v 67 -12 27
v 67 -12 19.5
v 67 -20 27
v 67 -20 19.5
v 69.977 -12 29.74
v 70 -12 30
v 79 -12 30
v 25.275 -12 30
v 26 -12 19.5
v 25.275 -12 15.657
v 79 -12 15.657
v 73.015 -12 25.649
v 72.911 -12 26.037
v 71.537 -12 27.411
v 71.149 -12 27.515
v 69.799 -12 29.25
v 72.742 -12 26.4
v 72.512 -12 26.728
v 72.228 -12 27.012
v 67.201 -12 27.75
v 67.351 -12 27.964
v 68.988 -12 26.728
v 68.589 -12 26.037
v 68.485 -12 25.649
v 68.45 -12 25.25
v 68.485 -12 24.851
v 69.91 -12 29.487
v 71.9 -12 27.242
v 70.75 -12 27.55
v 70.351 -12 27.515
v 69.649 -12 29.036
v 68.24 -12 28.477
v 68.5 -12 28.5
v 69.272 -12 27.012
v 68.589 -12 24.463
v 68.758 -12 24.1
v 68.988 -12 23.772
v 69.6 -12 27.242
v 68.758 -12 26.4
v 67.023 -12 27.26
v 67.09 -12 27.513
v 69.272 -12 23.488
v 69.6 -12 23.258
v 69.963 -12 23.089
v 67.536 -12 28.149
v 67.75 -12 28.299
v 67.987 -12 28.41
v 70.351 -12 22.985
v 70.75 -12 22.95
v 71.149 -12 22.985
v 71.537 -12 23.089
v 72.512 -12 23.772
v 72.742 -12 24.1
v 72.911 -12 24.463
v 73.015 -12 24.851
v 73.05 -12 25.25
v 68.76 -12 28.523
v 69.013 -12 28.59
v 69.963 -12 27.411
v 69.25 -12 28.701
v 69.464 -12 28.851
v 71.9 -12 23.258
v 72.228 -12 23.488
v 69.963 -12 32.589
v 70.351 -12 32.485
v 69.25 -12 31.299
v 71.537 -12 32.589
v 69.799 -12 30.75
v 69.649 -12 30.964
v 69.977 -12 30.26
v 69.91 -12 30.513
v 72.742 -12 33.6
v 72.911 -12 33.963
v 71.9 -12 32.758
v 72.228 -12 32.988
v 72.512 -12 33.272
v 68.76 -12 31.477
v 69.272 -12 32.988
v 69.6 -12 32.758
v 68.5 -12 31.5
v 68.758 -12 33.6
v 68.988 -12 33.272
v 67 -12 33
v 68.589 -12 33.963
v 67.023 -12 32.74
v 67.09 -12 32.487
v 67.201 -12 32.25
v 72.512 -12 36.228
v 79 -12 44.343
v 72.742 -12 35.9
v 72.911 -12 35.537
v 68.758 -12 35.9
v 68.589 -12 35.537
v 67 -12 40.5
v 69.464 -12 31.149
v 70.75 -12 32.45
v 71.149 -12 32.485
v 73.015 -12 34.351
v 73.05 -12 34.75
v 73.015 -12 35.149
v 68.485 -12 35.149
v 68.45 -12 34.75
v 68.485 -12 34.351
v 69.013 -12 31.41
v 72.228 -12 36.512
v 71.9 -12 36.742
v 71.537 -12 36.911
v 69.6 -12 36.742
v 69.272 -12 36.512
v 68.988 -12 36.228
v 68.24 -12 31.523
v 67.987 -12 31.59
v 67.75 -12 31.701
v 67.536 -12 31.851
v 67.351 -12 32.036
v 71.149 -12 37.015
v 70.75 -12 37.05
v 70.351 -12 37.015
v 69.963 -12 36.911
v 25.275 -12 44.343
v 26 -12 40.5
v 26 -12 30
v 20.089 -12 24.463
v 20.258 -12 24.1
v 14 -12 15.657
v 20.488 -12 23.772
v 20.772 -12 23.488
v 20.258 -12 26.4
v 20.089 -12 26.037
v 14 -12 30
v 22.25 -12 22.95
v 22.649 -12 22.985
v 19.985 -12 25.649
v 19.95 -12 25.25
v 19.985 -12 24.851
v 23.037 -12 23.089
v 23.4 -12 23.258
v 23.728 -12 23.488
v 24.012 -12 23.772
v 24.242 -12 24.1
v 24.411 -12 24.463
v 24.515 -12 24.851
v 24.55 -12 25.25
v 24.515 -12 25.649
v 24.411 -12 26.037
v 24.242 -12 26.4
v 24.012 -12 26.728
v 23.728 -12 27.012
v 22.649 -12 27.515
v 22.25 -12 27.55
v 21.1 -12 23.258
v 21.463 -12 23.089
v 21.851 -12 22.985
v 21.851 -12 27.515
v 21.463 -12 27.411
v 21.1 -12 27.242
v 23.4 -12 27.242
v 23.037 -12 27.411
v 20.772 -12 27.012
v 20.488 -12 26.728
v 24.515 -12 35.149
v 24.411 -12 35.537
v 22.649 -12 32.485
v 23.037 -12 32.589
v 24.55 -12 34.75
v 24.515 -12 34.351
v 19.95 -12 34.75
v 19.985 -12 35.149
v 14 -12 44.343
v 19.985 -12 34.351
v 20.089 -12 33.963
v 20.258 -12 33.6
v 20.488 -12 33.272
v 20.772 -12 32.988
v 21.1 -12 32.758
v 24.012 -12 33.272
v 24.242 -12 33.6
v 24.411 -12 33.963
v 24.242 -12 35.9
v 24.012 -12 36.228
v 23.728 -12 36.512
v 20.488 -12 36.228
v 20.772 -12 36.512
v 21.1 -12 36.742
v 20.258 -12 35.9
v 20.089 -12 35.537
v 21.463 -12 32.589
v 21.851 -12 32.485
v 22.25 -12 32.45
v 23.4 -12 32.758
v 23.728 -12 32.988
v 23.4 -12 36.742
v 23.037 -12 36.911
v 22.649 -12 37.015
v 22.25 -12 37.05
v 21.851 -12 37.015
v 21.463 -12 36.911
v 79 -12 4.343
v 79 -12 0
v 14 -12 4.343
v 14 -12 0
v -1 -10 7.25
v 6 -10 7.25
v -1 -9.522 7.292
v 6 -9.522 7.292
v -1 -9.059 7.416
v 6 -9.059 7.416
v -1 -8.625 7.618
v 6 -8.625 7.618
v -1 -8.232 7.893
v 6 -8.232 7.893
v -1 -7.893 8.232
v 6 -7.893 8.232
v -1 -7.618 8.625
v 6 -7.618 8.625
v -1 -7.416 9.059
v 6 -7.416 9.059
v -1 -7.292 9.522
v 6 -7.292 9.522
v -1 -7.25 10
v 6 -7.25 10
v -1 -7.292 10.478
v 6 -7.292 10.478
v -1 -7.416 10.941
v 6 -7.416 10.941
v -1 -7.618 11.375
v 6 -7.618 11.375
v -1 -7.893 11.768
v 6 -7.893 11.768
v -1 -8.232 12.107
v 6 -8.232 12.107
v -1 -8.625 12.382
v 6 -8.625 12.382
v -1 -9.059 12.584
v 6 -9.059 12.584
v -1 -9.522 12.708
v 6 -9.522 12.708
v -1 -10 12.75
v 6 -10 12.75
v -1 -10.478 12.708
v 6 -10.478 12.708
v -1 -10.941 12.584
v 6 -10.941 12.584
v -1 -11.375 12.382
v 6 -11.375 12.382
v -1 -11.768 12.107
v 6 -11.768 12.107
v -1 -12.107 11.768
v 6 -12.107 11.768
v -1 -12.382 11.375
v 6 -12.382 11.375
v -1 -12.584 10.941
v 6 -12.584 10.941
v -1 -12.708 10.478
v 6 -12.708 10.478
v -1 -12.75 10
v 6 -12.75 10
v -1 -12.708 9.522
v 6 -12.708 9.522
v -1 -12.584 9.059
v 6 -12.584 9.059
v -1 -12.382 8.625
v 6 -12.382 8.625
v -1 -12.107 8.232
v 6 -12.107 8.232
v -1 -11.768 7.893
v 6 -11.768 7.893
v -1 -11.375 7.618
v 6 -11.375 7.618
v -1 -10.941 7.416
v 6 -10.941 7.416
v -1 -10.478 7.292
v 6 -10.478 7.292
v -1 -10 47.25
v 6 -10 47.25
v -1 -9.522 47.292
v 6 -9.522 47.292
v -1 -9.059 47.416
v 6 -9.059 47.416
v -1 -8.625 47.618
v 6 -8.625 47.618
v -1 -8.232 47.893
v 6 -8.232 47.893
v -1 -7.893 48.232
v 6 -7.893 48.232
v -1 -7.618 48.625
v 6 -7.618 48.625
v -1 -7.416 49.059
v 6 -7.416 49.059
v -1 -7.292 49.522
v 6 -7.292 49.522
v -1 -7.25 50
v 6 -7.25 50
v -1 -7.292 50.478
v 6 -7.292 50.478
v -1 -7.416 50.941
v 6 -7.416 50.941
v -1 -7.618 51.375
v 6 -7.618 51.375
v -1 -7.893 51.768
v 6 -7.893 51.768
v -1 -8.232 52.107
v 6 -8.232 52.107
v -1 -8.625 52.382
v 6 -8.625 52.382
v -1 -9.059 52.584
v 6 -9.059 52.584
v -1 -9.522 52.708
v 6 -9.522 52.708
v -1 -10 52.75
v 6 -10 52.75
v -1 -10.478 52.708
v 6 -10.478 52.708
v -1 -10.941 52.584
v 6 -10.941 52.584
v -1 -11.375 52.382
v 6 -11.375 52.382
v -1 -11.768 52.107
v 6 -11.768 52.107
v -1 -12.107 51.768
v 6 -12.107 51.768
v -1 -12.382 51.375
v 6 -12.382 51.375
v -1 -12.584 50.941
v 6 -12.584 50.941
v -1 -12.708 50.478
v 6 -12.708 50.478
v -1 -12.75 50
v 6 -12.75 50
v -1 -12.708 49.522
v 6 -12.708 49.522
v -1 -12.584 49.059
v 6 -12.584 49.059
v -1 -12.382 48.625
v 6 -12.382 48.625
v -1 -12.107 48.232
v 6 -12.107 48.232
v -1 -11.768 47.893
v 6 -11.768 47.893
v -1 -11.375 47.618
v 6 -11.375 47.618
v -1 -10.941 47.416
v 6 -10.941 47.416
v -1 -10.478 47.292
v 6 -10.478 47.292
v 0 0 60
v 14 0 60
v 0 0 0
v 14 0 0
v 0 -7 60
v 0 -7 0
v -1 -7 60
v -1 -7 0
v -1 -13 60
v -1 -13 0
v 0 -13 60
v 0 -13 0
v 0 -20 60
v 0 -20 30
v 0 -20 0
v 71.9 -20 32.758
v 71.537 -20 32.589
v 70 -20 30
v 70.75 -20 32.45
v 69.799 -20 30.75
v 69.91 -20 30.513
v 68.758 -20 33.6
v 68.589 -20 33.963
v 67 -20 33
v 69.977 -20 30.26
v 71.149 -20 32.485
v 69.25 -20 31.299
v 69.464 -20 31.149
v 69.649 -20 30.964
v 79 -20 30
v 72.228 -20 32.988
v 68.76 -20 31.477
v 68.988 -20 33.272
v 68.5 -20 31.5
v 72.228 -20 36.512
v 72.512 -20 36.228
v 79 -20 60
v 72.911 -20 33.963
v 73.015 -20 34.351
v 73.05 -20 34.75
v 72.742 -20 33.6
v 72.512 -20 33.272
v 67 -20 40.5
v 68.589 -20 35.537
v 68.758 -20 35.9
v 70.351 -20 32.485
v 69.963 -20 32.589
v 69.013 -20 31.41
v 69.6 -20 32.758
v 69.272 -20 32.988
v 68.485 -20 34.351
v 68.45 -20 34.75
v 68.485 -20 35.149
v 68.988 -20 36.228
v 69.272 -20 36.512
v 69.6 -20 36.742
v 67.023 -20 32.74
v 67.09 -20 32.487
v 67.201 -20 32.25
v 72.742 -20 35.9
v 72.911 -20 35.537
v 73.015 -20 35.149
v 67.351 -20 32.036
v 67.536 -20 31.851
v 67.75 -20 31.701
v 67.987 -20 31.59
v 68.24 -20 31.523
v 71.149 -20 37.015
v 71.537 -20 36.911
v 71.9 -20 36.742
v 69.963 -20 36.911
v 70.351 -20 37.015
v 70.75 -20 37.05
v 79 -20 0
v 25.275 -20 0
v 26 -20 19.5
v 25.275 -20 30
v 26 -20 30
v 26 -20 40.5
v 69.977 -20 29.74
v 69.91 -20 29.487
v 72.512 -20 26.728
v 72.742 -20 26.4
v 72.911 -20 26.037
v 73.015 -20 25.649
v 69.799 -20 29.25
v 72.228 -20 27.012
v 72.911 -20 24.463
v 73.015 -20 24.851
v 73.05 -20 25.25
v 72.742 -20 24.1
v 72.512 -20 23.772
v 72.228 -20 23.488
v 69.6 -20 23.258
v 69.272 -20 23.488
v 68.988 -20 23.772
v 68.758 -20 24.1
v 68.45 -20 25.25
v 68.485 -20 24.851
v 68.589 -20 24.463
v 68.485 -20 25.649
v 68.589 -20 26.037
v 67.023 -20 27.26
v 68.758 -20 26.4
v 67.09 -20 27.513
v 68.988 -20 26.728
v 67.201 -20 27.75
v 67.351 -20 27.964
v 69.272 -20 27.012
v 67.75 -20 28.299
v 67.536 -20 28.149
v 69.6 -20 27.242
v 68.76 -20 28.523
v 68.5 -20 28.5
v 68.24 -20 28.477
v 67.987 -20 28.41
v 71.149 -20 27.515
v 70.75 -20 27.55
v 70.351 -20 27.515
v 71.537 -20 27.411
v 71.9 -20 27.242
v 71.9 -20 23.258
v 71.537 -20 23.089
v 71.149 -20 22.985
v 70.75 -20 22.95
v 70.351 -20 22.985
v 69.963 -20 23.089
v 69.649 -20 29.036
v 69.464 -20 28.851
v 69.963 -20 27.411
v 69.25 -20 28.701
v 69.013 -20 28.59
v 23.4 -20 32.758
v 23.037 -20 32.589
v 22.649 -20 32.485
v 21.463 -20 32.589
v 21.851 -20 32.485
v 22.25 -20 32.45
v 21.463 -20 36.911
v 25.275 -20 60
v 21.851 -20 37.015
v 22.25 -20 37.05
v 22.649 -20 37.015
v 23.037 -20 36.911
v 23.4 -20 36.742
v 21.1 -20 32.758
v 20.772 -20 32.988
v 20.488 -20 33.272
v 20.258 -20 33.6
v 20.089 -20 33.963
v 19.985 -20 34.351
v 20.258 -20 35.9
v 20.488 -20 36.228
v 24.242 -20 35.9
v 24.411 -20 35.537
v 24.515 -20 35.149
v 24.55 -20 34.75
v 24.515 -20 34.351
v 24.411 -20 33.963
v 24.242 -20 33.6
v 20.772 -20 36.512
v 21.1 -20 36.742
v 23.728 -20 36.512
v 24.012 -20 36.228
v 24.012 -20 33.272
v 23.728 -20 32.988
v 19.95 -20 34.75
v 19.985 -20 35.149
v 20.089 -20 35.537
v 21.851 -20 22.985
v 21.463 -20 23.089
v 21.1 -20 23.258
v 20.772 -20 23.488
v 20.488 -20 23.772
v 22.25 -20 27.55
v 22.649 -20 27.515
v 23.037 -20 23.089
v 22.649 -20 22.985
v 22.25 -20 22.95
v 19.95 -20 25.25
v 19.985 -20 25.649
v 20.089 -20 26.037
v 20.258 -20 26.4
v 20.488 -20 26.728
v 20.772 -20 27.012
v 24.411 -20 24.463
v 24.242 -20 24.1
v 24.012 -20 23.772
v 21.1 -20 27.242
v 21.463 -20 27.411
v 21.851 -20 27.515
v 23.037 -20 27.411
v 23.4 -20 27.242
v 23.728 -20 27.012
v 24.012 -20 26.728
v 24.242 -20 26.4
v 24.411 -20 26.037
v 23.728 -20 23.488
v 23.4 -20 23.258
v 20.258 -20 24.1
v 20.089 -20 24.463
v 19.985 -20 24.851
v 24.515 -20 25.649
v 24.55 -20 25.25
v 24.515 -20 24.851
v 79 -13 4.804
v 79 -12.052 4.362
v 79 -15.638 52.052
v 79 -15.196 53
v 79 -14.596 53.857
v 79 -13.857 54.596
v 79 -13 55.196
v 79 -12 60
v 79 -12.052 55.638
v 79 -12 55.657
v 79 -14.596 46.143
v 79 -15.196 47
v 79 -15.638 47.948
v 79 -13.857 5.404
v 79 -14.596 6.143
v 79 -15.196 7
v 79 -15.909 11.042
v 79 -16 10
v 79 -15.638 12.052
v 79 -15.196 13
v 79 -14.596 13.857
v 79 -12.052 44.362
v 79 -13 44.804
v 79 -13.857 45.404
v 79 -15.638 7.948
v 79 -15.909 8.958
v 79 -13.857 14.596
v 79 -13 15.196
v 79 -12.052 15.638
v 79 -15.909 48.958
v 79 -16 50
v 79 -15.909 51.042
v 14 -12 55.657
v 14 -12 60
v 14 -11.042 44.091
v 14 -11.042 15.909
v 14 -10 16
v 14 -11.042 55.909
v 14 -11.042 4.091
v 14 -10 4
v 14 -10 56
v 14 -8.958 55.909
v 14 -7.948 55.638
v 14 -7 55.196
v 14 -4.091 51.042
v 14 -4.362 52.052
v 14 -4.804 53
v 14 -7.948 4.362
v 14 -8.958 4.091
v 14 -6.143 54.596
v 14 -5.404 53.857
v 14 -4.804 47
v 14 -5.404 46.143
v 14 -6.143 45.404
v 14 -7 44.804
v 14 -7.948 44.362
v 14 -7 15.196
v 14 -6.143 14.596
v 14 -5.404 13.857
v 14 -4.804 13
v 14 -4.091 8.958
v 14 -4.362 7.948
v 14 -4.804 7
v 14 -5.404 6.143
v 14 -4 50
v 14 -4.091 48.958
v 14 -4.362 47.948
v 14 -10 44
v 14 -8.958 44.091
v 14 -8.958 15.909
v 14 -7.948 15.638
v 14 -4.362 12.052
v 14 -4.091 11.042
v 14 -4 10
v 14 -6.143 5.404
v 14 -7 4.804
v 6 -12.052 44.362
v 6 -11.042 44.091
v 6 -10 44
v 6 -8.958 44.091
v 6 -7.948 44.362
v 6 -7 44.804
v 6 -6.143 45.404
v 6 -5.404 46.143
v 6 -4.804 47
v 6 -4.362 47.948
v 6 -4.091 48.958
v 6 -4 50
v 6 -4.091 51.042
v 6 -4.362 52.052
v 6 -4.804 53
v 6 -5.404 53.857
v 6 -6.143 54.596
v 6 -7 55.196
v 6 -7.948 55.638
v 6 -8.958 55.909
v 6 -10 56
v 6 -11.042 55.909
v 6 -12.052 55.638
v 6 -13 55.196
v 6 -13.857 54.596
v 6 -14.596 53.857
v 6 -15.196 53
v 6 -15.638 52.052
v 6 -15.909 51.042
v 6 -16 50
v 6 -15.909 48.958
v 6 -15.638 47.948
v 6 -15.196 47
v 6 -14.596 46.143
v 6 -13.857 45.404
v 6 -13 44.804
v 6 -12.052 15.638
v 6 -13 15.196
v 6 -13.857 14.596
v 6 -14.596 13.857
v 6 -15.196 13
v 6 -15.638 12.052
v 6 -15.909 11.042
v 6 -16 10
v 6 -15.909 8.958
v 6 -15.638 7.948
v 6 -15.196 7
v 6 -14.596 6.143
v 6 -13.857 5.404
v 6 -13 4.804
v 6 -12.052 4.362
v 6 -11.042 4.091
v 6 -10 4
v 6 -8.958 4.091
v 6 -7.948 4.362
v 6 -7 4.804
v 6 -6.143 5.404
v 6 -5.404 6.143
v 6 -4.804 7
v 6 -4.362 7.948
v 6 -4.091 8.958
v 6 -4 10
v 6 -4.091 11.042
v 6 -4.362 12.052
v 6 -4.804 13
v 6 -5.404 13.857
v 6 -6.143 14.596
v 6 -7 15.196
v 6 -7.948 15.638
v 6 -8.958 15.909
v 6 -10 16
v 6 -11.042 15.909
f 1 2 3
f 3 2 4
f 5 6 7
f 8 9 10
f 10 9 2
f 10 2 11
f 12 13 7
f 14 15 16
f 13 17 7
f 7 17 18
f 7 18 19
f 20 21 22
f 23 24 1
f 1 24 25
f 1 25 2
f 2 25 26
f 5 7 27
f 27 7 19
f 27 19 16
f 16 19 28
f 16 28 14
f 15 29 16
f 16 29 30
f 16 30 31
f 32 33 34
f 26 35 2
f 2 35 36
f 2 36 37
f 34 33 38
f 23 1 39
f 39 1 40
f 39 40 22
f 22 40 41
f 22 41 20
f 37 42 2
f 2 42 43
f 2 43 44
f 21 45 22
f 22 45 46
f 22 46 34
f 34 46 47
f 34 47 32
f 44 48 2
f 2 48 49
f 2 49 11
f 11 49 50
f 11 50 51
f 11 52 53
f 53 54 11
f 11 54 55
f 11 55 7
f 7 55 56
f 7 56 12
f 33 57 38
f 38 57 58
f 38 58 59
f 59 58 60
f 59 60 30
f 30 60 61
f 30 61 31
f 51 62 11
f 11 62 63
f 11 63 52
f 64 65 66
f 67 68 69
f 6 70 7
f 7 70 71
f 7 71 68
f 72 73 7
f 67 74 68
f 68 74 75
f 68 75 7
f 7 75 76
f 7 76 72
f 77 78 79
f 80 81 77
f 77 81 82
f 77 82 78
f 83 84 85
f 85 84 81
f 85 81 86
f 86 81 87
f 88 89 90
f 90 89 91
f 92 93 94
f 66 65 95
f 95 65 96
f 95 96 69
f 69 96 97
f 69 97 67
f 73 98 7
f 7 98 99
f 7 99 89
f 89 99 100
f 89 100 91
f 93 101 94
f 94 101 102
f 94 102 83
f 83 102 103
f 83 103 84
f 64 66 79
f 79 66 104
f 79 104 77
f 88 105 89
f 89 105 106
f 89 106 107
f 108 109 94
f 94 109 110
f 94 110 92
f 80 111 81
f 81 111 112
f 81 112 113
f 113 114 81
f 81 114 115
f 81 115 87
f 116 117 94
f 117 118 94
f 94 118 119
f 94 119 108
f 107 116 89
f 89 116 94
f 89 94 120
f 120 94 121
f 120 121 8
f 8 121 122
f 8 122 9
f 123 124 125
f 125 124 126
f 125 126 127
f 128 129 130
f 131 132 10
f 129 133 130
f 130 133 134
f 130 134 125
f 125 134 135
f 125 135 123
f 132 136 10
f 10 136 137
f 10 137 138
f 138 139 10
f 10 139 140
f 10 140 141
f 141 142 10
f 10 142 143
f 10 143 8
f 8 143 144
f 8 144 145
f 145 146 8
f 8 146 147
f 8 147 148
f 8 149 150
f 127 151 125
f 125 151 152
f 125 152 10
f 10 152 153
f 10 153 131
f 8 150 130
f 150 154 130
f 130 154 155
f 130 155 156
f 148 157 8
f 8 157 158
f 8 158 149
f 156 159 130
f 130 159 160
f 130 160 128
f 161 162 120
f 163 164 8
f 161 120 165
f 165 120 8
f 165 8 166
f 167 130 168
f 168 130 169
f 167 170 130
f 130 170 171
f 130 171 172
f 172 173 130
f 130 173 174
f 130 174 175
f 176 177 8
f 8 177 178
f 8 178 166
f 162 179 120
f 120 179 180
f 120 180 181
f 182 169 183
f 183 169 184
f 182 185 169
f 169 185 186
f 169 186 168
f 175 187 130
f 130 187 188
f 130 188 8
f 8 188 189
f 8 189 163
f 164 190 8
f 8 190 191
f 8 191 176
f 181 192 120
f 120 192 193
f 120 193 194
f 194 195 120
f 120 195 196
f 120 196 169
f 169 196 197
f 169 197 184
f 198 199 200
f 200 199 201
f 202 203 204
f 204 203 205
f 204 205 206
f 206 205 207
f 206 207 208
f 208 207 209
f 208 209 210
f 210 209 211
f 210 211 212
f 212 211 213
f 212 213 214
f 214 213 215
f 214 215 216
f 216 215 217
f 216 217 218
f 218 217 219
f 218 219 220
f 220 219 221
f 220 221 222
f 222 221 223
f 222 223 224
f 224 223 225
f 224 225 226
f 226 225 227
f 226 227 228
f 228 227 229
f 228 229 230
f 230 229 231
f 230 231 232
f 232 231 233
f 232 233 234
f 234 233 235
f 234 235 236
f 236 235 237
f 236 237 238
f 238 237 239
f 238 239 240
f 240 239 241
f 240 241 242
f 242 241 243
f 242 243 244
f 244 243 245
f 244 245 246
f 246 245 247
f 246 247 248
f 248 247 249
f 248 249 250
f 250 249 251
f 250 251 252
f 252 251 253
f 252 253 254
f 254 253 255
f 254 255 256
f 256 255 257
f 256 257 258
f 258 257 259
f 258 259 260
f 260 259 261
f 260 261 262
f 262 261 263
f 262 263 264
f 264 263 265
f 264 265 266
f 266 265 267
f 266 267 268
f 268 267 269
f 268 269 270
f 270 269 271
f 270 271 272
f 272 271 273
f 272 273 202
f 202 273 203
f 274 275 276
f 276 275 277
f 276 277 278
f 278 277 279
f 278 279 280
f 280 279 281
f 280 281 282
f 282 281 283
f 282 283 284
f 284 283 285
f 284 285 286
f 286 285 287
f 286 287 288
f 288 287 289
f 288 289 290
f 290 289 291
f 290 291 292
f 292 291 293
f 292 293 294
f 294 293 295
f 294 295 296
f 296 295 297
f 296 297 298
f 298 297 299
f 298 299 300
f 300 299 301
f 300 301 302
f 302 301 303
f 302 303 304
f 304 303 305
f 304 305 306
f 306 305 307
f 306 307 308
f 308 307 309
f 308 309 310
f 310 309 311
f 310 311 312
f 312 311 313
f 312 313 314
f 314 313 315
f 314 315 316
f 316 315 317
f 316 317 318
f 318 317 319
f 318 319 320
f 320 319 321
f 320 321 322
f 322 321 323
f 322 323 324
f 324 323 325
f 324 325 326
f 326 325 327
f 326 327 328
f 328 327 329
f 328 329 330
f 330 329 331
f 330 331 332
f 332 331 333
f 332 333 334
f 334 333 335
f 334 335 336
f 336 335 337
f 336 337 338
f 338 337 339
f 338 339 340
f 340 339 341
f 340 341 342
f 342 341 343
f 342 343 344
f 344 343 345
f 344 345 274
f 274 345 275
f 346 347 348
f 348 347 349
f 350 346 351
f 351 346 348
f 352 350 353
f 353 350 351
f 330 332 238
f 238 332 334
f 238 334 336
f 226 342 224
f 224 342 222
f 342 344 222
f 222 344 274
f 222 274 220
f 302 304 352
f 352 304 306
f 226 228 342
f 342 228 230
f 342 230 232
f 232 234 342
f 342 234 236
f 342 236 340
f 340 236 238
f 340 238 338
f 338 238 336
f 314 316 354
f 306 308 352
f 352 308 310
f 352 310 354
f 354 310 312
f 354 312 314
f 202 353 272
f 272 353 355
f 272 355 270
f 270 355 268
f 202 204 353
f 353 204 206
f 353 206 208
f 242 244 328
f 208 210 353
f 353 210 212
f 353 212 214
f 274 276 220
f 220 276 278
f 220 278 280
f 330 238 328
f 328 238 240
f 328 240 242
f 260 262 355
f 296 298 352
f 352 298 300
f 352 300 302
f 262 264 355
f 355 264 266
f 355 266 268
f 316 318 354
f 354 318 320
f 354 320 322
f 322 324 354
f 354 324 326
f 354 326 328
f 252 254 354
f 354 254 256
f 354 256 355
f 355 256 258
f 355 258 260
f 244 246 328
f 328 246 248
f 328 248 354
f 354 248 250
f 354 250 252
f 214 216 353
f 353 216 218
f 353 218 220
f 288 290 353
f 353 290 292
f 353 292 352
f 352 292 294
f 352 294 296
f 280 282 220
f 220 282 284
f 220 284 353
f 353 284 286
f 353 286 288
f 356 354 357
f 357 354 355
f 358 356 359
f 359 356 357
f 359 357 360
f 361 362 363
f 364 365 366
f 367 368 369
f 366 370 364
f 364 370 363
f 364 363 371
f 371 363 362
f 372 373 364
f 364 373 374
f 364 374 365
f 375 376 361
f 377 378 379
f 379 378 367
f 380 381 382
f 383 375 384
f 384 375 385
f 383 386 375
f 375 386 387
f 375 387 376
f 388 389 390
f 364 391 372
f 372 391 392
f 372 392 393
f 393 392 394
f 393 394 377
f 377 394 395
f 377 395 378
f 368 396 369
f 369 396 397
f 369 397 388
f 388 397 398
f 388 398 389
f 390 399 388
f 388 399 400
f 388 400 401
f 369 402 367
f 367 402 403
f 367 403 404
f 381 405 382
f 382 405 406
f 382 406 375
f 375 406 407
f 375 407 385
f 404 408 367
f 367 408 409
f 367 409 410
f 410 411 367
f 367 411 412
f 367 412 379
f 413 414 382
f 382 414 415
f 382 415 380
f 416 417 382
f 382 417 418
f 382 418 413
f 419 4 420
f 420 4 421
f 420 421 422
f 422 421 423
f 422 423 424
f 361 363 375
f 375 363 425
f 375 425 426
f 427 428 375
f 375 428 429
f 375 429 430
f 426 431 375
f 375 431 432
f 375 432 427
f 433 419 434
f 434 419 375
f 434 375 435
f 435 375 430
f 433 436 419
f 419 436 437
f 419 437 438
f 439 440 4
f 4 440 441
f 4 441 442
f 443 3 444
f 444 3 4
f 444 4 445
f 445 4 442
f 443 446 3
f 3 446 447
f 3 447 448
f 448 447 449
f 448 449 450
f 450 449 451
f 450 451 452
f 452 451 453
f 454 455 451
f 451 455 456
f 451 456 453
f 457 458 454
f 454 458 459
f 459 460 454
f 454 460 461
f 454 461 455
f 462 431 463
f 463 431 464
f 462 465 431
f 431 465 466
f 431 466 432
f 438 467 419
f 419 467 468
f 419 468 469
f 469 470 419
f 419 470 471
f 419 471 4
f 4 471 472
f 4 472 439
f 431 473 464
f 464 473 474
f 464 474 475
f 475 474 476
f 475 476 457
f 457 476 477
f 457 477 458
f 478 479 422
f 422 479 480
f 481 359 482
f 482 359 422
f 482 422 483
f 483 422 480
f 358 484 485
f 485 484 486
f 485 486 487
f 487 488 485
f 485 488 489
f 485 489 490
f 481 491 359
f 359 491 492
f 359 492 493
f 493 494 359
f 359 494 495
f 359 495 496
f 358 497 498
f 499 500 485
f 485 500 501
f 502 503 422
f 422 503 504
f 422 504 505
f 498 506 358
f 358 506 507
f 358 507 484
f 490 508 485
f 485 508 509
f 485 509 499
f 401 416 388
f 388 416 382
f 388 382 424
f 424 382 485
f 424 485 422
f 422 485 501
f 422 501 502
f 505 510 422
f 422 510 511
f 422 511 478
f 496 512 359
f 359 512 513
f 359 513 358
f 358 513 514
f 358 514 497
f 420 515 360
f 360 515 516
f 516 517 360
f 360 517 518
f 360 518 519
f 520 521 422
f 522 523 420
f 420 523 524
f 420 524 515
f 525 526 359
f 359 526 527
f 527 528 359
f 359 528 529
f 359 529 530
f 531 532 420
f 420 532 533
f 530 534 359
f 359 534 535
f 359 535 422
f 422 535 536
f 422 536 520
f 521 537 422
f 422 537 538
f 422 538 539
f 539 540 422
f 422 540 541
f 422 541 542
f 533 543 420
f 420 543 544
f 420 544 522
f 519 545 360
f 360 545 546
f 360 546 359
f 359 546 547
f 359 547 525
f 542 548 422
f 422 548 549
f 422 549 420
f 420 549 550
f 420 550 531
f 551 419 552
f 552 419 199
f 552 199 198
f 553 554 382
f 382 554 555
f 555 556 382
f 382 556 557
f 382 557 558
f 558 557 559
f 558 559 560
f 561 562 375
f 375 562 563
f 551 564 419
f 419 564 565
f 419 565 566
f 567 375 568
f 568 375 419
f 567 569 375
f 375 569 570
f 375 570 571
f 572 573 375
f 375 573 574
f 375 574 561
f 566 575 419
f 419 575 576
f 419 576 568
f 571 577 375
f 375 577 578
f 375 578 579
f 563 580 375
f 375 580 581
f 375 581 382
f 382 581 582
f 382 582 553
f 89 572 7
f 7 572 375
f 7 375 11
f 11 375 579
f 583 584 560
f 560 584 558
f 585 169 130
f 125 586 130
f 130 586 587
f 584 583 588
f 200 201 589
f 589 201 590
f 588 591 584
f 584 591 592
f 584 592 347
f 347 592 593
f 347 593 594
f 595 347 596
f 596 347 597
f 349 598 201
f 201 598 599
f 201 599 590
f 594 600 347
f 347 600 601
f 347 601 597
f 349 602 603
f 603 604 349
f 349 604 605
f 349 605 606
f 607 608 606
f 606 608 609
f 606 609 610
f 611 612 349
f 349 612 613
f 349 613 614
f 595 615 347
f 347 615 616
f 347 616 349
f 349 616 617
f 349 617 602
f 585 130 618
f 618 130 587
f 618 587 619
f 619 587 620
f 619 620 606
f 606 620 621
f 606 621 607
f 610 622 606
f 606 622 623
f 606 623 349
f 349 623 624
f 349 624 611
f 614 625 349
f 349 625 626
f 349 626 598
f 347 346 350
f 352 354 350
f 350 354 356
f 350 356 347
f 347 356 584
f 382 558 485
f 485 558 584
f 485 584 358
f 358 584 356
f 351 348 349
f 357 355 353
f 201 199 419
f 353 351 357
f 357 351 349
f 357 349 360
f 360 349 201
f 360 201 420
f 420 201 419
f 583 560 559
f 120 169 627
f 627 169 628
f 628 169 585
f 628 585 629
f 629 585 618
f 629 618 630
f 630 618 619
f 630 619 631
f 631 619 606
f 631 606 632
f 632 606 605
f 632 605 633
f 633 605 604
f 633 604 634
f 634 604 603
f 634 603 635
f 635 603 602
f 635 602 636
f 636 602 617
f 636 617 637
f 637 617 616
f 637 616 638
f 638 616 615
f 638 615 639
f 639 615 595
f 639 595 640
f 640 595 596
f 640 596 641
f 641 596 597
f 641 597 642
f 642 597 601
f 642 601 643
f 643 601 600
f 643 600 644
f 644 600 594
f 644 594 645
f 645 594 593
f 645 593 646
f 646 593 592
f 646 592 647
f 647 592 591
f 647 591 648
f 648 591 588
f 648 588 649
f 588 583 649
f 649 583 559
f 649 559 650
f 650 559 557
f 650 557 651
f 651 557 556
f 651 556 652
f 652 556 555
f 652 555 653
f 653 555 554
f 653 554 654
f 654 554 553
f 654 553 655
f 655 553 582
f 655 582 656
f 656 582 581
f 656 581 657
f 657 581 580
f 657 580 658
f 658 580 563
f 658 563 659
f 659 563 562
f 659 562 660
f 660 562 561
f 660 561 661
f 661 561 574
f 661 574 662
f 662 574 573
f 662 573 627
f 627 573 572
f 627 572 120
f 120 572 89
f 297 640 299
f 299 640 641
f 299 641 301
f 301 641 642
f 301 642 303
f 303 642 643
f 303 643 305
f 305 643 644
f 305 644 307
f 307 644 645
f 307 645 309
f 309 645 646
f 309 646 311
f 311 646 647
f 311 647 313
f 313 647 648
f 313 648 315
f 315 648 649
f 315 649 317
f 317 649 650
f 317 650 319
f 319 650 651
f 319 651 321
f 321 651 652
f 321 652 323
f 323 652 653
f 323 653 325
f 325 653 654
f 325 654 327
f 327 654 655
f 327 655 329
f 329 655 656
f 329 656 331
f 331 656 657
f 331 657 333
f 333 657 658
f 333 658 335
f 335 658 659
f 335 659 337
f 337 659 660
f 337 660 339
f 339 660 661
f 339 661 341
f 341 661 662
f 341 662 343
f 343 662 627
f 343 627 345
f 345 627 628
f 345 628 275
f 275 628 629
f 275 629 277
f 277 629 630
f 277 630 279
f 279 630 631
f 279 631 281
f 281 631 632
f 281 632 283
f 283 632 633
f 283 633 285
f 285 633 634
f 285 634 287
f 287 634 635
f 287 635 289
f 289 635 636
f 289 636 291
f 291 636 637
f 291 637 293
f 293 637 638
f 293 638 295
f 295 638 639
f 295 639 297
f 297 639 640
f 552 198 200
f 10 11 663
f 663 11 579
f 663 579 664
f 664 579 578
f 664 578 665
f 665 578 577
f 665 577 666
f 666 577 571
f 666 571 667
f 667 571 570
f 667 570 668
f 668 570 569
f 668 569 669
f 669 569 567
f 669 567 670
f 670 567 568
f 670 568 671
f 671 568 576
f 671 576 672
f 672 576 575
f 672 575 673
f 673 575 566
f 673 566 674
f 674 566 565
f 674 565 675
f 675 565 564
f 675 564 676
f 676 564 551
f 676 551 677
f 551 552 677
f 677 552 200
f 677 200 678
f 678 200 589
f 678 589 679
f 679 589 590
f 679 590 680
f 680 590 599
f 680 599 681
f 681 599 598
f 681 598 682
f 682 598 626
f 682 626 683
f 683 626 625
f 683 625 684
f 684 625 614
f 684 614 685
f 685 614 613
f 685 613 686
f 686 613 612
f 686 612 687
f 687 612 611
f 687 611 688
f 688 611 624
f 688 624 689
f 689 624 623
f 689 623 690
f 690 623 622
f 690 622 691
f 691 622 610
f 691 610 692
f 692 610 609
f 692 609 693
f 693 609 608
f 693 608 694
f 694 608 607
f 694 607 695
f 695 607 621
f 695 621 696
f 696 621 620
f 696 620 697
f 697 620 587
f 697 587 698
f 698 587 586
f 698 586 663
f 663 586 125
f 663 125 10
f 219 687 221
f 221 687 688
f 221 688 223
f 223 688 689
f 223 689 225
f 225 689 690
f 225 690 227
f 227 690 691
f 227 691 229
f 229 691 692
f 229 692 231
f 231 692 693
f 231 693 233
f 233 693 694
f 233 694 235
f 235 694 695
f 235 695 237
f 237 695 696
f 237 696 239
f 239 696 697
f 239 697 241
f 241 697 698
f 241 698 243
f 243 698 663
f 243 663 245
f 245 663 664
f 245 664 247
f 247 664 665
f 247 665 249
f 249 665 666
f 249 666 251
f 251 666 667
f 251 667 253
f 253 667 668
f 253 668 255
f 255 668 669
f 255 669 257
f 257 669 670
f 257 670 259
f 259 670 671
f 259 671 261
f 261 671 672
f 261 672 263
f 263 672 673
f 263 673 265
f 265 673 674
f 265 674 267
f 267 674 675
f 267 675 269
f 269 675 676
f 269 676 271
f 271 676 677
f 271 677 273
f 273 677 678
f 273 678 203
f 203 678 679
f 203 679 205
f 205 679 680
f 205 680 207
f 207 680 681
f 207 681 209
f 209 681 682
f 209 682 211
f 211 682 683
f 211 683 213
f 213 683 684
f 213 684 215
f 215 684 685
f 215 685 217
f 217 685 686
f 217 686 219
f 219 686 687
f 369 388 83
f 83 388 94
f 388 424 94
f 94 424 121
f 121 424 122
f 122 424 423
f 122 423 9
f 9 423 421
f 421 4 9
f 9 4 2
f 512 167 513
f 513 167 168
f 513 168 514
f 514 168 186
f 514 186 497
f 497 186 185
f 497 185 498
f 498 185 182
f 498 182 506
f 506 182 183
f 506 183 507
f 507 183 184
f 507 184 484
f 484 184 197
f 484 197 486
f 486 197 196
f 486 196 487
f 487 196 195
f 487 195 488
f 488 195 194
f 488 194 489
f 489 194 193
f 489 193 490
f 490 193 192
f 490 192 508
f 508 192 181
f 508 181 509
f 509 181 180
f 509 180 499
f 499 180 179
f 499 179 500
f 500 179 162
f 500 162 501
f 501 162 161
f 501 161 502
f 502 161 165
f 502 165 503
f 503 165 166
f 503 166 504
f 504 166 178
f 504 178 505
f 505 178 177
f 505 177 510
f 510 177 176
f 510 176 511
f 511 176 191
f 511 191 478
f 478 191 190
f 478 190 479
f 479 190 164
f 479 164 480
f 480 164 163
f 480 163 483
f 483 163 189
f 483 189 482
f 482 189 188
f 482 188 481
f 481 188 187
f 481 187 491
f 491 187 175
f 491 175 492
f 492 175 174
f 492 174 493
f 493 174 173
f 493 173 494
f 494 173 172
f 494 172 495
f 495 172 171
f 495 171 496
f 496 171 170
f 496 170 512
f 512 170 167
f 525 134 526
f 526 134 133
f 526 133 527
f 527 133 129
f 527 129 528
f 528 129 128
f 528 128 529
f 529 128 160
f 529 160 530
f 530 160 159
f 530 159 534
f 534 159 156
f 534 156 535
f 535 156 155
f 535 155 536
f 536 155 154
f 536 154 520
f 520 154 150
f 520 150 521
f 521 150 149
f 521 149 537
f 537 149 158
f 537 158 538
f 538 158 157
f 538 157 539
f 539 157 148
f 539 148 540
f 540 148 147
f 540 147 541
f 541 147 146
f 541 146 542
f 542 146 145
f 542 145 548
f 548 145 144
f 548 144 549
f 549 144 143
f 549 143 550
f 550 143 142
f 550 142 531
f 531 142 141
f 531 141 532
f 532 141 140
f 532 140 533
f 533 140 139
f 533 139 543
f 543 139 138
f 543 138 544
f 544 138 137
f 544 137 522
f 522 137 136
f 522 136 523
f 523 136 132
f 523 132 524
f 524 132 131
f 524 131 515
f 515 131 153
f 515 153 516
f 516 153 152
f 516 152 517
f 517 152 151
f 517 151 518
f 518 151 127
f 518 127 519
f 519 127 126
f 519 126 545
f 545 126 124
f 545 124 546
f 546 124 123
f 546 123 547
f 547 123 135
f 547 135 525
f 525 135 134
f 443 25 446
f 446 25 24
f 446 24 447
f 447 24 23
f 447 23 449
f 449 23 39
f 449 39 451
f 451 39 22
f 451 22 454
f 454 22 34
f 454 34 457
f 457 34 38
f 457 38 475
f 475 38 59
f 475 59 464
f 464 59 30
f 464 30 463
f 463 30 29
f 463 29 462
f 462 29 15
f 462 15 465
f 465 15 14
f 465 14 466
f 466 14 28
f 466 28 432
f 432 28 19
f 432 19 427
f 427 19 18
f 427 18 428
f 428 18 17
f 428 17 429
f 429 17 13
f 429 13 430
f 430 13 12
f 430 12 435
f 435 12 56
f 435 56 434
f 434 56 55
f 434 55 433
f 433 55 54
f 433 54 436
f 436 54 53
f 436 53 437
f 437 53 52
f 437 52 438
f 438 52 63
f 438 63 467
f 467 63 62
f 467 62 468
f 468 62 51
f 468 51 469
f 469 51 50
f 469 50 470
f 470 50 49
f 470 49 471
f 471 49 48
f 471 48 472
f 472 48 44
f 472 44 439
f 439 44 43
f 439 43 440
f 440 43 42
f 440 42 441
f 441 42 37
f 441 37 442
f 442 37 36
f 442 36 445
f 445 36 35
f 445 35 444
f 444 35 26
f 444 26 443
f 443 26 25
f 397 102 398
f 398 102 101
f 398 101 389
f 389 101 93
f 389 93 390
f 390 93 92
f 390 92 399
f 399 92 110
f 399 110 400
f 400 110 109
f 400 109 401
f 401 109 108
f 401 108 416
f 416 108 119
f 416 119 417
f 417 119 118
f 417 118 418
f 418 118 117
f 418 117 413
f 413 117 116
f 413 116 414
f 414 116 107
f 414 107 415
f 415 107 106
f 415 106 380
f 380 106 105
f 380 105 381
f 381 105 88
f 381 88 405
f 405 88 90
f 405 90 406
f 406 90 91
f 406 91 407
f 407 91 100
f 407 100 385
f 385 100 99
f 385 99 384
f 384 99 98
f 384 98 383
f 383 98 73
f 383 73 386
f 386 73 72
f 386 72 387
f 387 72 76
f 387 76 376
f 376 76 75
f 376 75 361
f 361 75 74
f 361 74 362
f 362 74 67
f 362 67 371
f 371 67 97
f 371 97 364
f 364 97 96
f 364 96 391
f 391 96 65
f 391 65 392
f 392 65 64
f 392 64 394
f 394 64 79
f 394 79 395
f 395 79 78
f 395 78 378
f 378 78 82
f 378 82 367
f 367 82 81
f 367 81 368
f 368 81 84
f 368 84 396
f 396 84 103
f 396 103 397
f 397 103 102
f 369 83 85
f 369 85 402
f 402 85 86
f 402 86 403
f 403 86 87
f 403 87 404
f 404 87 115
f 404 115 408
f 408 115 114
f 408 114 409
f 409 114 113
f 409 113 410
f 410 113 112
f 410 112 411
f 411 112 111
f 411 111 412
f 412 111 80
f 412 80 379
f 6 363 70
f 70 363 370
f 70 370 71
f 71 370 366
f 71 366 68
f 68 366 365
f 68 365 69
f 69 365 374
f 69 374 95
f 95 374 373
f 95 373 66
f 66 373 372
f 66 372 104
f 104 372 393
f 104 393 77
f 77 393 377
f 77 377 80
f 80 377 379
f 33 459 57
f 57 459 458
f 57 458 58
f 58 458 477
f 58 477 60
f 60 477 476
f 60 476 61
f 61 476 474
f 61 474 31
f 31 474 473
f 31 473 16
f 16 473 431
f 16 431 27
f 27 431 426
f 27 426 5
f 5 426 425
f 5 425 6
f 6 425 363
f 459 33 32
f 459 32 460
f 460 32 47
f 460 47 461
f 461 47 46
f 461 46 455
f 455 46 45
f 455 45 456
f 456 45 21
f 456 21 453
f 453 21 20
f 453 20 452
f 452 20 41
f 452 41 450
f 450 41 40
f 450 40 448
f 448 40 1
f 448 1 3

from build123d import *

# Parameters (mm, degrees)
SALIENTE_EXTRUIR1_DEPTH = 60
CROQUIS2_R              = 2.75
CORTAR_EXTRUIR1_DEPTH   = 91.691785736
CROQUIS4_R              = 6
CORTAR_EXTRUIR2_DEPTH   = 73
CROQUIS5_W              = 41
CROQUIS5_H              = 21
CORTAR_EXTRUIR3_DEPTH   = 100.924971854
CROQUIS6_R              = 2.3
CORTAR_EXTRUIR4_DEPTH   = 100.924971854
CROQUIS7_W              = 3
CROQUIS7_H              = 3
CORTAR_EXTRUIR5_DEPTH   = 90.269255626
REDONDEO3_R             = 1.5


with BuildPart() as part:
    # Croquis1 → Saliente-Extruir1 (new body)
    with BuildSketch(Plane.XY):
        Polygon((0, 0), (0, -7), (-1, -7), (-1, -13), (0, -13), (0, -20), (79, -20), (79, -12), (14, -12), (14, 0), align=None)
    extrude(amount=SALIENTE_EXTRUIR1_DEPTH)

    # Croquis2 → Cortar-Extruir1 (cut, through all)
    with BuildSketch(Plane(origin=(14, 0, 0), x_dir=(0, 0, -1), z_dir=(1, 0, 0))):
        with Locations((-50, -10)):
            Circle(CROQUIS2_R)
        with Locations((-10, -10)):
            Circle(CROQUIS2_R)
    extrude(amount=-CORTAR_EXTRUIR1_DEPTH, mode=Mode.SUBTRACT)

    # Croquis4 → Cortar-Extruir2 (cut)
    with BuildSketch(Plane(origin=(79, 0, 0), x_dir=(0, 0, -1), z_dir=(1, 0, 0))):
        with Locations((-50, -10)):
            Circle(CROQUIS4_R)
        with Locations((-10, -10)):
            Circle(CROQUIS4_R)
    extrude(amount=-CORTAR_EXTRUIR2_DEPTH, mode=Mode.SUBTRACT)

    # Croquis5 → Cortar-Extruir3 (cut, through all)
    with BuildSketch(Plane(origin=(0, -12, 0), x_dir=(1, 0, 0), z_dir=(0, 1, 0))):
        with Locations((46.5, -30)):
            Rectangle(CROQUIS5_W, CROQUIS5_H)
    extrude(amount=-CORTAR_EXTRUIR3_DEPTH, mode=Mode.SUBTRACT)

    # Croquis6 → Cortar-Extruir4 (cut, through all)
    with BuildSketch(Plane(origin=(0, -12, 0), x_dir=(1, 0, 0), z_dir=(0, 1, 0))):
        with Locations(Location((22.25, -25.25, 0), (0, 0, 180))):
            Circle(CROQUIS6_R)
        with Locations(Location((22.25, -34.75, 0), (0, 0, 180))):
            Circle(CROQUIS6_R)
        with Locations(Location((70.75, -25.25, 0), (0, 0, 180))):
            Circle(CROQUIS6_R)
        with Locations(Location((70.75, -34.75, 0), (0, 0, 180))):
            Circle(CROQUIS6_R)
    extrude(amount=-CORTAR_EXTRUIR4_DEPTH, mode=Mode.SUBTRACT)

    # Croquis7 → Cortar-Extruir5 (cut, through all)
    with BuildSketch(Plane(origin=(14, -12, 60), x_dir=(1, 0, 0), z_dir=(0, 1, 0))):
        with Locations((54.5, 30)):
            Rectangle(CROQUIS7_W, CROQUIS7_H)
    extrude(amount=-CORTAR_EXTRUIR5_DEPTH, mode=Mode.SUBTRACT)

    # Redondeo3
    redondeo3_edges = [part.edges().sort_by_distance(p)[0] for p in [
        (70, -16, 31.5),
        (70, -16, 28.5),
    ]]
    fillet(redondeo3_edges, radius=REDONDEO3_R - 0.0001)  # a hair under: the kernel refuses the full size
    redondeo3_2_edges = [part.edges().sort_by_distance(p)[0] for p in [
        (67, -16, 28.5),
        (67, -16, 31.5),
    ]]
    fillet(redondeo3_2_edges, radius=REDONDEO3_R)


solid = part.part
